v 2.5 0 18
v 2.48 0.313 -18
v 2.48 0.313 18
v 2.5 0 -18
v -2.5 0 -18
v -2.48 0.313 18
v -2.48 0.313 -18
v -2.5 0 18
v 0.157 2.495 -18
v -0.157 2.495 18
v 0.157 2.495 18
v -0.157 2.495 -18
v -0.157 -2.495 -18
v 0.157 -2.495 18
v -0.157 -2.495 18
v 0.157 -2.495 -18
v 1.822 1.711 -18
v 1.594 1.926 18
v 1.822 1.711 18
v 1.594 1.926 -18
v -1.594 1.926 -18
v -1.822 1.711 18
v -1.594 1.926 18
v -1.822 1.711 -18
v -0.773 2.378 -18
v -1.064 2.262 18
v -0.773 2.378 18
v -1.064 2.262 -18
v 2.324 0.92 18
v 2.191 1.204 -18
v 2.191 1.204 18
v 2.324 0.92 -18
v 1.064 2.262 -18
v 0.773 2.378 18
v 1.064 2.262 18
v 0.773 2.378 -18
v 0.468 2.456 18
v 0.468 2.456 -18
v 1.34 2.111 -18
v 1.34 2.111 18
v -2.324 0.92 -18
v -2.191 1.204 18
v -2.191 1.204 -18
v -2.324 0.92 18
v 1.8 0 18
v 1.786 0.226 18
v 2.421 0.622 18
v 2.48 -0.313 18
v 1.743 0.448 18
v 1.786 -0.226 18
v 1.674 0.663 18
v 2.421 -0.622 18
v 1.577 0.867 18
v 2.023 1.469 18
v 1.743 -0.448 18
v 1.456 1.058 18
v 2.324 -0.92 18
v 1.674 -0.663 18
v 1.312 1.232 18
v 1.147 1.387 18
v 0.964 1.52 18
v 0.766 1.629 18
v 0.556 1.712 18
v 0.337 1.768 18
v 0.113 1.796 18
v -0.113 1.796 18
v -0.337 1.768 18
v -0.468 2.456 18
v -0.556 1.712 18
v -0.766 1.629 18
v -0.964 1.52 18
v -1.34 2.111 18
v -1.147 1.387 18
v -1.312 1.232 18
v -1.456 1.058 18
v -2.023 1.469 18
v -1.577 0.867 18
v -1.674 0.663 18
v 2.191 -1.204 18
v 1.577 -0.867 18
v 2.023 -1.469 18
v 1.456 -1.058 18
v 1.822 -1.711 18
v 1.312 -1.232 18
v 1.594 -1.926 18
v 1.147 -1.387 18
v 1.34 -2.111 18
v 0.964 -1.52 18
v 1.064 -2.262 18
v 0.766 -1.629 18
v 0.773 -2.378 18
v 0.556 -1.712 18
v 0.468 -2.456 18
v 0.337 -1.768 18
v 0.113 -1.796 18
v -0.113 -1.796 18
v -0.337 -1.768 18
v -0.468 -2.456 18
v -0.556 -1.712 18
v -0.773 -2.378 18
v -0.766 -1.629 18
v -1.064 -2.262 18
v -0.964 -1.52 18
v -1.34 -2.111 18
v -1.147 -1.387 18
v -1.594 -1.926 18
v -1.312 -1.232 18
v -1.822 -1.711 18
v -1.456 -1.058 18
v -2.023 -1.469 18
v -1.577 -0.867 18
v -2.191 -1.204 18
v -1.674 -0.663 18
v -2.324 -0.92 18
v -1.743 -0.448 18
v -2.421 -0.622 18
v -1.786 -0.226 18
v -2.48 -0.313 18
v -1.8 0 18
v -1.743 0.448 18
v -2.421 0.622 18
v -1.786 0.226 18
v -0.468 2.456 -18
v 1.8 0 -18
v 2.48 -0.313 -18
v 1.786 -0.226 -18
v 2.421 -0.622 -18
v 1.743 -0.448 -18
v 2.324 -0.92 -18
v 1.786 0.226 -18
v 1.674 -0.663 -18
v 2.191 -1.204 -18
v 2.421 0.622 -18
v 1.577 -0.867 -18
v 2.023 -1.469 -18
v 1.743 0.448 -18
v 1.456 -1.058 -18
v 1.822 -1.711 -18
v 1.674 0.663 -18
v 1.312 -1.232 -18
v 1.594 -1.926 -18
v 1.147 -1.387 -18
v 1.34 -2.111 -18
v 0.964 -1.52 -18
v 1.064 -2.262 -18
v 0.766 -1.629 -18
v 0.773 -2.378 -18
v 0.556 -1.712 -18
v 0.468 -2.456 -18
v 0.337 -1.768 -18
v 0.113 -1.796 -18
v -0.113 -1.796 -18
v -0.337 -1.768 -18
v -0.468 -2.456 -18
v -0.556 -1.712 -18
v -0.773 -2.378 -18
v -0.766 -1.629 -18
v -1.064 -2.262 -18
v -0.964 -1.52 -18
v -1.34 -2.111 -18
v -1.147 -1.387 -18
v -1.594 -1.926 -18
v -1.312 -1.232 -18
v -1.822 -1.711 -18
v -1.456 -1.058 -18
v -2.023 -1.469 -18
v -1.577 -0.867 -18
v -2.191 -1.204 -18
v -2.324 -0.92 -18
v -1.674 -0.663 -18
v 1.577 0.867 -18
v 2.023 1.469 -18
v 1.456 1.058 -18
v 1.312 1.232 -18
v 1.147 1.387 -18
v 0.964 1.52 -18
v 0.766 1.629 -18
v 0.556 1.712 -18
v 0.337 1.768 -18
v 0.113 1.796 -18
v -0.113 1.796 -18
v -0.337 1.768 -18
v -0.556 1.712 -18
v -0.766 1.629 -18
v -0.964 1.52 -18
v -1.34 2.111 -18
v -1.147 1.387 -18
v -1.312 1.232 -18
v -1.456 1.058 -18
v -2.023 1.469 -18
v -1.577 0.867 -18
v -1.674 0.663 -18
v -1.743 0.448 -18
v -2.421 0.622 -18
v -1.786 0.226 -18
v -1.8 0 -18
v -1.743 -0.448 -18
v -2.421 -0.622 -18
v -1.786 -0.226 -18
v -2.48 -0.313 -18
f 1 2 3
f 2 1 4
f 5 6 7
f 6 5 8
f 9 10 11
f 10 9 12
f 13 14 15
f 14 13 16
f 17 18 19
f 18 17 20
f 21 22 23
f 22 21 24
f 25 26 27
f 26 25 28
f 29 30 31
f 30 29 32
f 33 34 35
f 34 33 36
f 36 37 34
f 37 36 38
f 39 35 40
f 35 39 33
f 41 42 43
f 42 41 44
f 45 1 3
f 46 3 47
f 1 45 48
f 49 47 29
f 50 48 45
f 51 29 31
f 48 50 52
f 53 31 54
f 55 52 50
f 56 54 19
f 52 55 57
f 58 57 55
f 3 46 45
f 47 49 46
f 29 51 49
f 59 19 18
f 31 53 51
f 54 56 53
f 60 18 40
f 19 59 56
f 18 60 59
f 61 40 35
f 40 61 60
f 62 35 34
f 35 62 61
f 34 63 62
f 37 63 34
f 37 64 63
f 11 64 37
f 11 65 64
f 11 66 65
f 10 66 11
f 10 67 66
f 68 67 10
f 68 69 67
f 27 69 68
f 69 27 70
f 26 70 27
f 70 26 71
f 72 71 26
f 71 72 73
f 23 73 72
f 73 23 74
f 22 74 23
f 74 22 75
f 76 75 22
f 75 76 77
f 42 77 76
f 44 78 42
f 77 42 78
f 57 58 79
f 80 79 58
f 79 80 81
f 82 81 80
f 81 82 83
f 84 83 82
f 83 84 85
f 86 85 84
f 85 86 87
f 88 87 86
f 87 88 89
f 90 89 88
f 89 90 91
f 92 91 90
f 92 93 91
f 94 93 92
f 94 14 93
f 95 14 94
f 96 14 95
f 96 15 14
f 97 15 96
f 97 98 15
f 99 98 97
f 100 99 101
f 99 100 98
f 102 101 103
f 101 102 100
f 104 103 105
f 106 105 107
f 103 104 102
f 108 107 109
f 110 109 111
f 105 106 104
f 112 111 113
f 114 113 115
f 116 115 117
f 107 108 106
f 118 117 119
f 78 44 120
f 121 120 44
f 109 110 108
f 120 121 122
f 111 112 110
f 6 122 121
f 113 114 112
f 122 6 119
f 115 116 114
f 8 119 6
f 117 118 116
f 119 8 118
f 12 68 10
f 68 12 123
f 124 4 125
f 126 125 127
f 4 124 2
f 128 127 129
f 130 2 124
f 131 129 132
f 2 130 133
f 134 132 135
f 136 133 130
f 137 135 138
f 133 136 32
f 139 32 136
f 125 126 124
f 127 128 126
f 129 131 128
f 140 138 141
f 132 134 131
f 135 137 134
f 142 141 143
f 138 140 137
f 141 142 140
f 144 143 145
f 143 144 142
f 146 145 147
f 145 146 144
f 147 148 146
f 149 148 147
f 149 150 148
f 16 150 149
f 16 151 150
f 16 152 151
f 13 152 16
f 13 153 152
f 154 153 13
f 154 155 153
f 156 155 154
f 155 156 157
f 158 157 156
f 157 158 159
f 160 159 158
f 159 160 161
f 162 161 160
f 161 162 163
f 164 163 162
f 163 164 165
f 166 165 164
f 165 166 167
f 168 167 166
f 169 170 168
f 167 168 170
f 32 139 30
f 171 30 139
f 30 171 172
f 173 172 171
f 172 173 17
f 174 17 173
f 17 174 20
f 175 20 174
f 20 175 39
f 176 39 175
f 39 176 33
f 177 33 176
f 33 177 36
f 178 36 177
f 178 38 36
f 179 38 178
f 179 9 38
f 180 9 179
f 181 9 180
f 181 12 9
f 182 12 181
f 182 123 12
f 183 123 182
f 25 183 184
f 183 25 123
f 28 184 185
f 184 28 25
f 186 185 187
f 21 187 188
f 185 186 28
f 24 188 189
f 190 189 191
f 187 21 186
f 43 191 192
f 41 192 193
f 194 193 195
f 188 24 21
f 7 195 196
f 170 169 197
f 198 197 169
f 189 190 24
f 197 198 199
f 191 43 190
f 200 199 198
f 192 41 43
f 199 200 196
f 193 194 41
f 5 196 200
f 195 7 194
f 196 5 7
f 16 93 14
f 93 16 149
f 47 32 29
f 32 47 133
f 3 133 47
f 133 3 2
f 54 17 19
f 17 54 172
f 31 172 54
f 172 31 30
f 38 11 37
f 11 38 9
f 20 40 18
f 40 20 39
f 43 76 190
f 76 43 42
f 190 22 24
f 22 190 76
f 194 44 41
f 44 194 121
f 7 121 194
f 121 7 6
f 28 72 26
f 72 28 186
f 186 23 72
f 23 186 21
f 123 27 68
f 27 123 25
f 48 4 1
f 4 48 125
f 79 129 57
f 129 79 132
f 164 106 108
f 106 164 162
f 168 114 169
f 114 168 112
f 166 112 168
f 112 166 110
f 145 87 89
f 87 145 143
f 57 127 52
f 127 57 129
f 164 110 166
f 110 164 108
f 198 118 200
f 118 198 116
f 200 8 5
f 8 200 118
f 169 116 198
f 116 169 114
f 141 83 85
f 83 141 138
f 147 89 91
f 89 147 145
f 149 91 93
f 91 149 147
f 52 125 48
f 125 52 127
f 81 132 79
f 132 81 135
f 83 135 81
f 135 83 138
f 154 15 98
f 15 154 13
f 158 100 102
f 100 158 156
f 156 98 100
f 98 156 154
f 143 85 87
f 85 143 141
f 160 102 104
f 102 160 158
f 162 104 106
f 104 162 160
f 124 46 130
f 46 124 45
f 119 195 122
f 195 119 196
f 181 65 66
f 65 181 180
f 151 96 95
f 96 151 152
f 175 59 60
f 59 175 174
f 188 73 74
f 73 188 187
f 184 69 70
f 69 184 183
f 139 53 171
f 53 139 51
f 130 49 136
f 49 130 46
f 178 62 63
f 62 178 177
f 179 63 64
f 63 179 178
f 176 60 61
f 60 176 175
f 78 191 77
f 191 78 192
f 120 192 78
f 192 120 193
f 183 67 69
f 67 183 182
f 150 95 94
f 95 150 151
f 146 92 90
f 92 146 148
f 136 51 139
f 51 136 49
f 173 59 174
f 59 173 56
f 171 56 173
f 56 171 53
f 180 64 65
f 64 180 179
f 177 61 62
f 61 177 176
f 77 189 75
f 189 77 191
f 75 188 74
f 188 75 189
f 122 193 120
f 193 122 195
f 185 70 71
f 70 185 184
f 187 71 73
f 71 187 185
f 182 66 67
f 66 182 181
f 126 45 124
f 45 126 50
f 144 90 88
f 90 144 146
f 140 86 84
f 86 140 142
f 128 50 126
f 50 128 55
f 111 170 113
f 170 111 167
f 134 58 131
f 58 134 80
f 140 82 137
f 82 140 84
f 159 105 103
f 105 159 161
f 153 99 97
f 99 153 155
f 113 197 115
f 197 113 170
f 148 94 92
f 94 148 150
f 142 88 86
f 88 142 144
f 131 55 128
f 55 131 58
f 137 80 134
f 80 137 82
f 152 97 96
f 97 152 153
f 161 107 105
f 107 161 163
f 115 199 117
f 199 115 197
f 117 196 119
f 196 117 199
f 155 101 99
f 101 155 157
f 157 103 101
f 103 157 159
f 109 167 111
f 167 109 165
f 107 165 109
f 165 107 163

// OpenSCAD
$fn = 50;


difference() {
	union() {
		translate(v = [0, 0, -18.0000000000]) {
			cylinder(h = 36, r = 2.5000000000);
		}
	}
	union() {
		translate(v = [0, 0, -100.0000000000]) {
			cylinder(h = 200, r = 1.8000000000);
		}
	}
}
